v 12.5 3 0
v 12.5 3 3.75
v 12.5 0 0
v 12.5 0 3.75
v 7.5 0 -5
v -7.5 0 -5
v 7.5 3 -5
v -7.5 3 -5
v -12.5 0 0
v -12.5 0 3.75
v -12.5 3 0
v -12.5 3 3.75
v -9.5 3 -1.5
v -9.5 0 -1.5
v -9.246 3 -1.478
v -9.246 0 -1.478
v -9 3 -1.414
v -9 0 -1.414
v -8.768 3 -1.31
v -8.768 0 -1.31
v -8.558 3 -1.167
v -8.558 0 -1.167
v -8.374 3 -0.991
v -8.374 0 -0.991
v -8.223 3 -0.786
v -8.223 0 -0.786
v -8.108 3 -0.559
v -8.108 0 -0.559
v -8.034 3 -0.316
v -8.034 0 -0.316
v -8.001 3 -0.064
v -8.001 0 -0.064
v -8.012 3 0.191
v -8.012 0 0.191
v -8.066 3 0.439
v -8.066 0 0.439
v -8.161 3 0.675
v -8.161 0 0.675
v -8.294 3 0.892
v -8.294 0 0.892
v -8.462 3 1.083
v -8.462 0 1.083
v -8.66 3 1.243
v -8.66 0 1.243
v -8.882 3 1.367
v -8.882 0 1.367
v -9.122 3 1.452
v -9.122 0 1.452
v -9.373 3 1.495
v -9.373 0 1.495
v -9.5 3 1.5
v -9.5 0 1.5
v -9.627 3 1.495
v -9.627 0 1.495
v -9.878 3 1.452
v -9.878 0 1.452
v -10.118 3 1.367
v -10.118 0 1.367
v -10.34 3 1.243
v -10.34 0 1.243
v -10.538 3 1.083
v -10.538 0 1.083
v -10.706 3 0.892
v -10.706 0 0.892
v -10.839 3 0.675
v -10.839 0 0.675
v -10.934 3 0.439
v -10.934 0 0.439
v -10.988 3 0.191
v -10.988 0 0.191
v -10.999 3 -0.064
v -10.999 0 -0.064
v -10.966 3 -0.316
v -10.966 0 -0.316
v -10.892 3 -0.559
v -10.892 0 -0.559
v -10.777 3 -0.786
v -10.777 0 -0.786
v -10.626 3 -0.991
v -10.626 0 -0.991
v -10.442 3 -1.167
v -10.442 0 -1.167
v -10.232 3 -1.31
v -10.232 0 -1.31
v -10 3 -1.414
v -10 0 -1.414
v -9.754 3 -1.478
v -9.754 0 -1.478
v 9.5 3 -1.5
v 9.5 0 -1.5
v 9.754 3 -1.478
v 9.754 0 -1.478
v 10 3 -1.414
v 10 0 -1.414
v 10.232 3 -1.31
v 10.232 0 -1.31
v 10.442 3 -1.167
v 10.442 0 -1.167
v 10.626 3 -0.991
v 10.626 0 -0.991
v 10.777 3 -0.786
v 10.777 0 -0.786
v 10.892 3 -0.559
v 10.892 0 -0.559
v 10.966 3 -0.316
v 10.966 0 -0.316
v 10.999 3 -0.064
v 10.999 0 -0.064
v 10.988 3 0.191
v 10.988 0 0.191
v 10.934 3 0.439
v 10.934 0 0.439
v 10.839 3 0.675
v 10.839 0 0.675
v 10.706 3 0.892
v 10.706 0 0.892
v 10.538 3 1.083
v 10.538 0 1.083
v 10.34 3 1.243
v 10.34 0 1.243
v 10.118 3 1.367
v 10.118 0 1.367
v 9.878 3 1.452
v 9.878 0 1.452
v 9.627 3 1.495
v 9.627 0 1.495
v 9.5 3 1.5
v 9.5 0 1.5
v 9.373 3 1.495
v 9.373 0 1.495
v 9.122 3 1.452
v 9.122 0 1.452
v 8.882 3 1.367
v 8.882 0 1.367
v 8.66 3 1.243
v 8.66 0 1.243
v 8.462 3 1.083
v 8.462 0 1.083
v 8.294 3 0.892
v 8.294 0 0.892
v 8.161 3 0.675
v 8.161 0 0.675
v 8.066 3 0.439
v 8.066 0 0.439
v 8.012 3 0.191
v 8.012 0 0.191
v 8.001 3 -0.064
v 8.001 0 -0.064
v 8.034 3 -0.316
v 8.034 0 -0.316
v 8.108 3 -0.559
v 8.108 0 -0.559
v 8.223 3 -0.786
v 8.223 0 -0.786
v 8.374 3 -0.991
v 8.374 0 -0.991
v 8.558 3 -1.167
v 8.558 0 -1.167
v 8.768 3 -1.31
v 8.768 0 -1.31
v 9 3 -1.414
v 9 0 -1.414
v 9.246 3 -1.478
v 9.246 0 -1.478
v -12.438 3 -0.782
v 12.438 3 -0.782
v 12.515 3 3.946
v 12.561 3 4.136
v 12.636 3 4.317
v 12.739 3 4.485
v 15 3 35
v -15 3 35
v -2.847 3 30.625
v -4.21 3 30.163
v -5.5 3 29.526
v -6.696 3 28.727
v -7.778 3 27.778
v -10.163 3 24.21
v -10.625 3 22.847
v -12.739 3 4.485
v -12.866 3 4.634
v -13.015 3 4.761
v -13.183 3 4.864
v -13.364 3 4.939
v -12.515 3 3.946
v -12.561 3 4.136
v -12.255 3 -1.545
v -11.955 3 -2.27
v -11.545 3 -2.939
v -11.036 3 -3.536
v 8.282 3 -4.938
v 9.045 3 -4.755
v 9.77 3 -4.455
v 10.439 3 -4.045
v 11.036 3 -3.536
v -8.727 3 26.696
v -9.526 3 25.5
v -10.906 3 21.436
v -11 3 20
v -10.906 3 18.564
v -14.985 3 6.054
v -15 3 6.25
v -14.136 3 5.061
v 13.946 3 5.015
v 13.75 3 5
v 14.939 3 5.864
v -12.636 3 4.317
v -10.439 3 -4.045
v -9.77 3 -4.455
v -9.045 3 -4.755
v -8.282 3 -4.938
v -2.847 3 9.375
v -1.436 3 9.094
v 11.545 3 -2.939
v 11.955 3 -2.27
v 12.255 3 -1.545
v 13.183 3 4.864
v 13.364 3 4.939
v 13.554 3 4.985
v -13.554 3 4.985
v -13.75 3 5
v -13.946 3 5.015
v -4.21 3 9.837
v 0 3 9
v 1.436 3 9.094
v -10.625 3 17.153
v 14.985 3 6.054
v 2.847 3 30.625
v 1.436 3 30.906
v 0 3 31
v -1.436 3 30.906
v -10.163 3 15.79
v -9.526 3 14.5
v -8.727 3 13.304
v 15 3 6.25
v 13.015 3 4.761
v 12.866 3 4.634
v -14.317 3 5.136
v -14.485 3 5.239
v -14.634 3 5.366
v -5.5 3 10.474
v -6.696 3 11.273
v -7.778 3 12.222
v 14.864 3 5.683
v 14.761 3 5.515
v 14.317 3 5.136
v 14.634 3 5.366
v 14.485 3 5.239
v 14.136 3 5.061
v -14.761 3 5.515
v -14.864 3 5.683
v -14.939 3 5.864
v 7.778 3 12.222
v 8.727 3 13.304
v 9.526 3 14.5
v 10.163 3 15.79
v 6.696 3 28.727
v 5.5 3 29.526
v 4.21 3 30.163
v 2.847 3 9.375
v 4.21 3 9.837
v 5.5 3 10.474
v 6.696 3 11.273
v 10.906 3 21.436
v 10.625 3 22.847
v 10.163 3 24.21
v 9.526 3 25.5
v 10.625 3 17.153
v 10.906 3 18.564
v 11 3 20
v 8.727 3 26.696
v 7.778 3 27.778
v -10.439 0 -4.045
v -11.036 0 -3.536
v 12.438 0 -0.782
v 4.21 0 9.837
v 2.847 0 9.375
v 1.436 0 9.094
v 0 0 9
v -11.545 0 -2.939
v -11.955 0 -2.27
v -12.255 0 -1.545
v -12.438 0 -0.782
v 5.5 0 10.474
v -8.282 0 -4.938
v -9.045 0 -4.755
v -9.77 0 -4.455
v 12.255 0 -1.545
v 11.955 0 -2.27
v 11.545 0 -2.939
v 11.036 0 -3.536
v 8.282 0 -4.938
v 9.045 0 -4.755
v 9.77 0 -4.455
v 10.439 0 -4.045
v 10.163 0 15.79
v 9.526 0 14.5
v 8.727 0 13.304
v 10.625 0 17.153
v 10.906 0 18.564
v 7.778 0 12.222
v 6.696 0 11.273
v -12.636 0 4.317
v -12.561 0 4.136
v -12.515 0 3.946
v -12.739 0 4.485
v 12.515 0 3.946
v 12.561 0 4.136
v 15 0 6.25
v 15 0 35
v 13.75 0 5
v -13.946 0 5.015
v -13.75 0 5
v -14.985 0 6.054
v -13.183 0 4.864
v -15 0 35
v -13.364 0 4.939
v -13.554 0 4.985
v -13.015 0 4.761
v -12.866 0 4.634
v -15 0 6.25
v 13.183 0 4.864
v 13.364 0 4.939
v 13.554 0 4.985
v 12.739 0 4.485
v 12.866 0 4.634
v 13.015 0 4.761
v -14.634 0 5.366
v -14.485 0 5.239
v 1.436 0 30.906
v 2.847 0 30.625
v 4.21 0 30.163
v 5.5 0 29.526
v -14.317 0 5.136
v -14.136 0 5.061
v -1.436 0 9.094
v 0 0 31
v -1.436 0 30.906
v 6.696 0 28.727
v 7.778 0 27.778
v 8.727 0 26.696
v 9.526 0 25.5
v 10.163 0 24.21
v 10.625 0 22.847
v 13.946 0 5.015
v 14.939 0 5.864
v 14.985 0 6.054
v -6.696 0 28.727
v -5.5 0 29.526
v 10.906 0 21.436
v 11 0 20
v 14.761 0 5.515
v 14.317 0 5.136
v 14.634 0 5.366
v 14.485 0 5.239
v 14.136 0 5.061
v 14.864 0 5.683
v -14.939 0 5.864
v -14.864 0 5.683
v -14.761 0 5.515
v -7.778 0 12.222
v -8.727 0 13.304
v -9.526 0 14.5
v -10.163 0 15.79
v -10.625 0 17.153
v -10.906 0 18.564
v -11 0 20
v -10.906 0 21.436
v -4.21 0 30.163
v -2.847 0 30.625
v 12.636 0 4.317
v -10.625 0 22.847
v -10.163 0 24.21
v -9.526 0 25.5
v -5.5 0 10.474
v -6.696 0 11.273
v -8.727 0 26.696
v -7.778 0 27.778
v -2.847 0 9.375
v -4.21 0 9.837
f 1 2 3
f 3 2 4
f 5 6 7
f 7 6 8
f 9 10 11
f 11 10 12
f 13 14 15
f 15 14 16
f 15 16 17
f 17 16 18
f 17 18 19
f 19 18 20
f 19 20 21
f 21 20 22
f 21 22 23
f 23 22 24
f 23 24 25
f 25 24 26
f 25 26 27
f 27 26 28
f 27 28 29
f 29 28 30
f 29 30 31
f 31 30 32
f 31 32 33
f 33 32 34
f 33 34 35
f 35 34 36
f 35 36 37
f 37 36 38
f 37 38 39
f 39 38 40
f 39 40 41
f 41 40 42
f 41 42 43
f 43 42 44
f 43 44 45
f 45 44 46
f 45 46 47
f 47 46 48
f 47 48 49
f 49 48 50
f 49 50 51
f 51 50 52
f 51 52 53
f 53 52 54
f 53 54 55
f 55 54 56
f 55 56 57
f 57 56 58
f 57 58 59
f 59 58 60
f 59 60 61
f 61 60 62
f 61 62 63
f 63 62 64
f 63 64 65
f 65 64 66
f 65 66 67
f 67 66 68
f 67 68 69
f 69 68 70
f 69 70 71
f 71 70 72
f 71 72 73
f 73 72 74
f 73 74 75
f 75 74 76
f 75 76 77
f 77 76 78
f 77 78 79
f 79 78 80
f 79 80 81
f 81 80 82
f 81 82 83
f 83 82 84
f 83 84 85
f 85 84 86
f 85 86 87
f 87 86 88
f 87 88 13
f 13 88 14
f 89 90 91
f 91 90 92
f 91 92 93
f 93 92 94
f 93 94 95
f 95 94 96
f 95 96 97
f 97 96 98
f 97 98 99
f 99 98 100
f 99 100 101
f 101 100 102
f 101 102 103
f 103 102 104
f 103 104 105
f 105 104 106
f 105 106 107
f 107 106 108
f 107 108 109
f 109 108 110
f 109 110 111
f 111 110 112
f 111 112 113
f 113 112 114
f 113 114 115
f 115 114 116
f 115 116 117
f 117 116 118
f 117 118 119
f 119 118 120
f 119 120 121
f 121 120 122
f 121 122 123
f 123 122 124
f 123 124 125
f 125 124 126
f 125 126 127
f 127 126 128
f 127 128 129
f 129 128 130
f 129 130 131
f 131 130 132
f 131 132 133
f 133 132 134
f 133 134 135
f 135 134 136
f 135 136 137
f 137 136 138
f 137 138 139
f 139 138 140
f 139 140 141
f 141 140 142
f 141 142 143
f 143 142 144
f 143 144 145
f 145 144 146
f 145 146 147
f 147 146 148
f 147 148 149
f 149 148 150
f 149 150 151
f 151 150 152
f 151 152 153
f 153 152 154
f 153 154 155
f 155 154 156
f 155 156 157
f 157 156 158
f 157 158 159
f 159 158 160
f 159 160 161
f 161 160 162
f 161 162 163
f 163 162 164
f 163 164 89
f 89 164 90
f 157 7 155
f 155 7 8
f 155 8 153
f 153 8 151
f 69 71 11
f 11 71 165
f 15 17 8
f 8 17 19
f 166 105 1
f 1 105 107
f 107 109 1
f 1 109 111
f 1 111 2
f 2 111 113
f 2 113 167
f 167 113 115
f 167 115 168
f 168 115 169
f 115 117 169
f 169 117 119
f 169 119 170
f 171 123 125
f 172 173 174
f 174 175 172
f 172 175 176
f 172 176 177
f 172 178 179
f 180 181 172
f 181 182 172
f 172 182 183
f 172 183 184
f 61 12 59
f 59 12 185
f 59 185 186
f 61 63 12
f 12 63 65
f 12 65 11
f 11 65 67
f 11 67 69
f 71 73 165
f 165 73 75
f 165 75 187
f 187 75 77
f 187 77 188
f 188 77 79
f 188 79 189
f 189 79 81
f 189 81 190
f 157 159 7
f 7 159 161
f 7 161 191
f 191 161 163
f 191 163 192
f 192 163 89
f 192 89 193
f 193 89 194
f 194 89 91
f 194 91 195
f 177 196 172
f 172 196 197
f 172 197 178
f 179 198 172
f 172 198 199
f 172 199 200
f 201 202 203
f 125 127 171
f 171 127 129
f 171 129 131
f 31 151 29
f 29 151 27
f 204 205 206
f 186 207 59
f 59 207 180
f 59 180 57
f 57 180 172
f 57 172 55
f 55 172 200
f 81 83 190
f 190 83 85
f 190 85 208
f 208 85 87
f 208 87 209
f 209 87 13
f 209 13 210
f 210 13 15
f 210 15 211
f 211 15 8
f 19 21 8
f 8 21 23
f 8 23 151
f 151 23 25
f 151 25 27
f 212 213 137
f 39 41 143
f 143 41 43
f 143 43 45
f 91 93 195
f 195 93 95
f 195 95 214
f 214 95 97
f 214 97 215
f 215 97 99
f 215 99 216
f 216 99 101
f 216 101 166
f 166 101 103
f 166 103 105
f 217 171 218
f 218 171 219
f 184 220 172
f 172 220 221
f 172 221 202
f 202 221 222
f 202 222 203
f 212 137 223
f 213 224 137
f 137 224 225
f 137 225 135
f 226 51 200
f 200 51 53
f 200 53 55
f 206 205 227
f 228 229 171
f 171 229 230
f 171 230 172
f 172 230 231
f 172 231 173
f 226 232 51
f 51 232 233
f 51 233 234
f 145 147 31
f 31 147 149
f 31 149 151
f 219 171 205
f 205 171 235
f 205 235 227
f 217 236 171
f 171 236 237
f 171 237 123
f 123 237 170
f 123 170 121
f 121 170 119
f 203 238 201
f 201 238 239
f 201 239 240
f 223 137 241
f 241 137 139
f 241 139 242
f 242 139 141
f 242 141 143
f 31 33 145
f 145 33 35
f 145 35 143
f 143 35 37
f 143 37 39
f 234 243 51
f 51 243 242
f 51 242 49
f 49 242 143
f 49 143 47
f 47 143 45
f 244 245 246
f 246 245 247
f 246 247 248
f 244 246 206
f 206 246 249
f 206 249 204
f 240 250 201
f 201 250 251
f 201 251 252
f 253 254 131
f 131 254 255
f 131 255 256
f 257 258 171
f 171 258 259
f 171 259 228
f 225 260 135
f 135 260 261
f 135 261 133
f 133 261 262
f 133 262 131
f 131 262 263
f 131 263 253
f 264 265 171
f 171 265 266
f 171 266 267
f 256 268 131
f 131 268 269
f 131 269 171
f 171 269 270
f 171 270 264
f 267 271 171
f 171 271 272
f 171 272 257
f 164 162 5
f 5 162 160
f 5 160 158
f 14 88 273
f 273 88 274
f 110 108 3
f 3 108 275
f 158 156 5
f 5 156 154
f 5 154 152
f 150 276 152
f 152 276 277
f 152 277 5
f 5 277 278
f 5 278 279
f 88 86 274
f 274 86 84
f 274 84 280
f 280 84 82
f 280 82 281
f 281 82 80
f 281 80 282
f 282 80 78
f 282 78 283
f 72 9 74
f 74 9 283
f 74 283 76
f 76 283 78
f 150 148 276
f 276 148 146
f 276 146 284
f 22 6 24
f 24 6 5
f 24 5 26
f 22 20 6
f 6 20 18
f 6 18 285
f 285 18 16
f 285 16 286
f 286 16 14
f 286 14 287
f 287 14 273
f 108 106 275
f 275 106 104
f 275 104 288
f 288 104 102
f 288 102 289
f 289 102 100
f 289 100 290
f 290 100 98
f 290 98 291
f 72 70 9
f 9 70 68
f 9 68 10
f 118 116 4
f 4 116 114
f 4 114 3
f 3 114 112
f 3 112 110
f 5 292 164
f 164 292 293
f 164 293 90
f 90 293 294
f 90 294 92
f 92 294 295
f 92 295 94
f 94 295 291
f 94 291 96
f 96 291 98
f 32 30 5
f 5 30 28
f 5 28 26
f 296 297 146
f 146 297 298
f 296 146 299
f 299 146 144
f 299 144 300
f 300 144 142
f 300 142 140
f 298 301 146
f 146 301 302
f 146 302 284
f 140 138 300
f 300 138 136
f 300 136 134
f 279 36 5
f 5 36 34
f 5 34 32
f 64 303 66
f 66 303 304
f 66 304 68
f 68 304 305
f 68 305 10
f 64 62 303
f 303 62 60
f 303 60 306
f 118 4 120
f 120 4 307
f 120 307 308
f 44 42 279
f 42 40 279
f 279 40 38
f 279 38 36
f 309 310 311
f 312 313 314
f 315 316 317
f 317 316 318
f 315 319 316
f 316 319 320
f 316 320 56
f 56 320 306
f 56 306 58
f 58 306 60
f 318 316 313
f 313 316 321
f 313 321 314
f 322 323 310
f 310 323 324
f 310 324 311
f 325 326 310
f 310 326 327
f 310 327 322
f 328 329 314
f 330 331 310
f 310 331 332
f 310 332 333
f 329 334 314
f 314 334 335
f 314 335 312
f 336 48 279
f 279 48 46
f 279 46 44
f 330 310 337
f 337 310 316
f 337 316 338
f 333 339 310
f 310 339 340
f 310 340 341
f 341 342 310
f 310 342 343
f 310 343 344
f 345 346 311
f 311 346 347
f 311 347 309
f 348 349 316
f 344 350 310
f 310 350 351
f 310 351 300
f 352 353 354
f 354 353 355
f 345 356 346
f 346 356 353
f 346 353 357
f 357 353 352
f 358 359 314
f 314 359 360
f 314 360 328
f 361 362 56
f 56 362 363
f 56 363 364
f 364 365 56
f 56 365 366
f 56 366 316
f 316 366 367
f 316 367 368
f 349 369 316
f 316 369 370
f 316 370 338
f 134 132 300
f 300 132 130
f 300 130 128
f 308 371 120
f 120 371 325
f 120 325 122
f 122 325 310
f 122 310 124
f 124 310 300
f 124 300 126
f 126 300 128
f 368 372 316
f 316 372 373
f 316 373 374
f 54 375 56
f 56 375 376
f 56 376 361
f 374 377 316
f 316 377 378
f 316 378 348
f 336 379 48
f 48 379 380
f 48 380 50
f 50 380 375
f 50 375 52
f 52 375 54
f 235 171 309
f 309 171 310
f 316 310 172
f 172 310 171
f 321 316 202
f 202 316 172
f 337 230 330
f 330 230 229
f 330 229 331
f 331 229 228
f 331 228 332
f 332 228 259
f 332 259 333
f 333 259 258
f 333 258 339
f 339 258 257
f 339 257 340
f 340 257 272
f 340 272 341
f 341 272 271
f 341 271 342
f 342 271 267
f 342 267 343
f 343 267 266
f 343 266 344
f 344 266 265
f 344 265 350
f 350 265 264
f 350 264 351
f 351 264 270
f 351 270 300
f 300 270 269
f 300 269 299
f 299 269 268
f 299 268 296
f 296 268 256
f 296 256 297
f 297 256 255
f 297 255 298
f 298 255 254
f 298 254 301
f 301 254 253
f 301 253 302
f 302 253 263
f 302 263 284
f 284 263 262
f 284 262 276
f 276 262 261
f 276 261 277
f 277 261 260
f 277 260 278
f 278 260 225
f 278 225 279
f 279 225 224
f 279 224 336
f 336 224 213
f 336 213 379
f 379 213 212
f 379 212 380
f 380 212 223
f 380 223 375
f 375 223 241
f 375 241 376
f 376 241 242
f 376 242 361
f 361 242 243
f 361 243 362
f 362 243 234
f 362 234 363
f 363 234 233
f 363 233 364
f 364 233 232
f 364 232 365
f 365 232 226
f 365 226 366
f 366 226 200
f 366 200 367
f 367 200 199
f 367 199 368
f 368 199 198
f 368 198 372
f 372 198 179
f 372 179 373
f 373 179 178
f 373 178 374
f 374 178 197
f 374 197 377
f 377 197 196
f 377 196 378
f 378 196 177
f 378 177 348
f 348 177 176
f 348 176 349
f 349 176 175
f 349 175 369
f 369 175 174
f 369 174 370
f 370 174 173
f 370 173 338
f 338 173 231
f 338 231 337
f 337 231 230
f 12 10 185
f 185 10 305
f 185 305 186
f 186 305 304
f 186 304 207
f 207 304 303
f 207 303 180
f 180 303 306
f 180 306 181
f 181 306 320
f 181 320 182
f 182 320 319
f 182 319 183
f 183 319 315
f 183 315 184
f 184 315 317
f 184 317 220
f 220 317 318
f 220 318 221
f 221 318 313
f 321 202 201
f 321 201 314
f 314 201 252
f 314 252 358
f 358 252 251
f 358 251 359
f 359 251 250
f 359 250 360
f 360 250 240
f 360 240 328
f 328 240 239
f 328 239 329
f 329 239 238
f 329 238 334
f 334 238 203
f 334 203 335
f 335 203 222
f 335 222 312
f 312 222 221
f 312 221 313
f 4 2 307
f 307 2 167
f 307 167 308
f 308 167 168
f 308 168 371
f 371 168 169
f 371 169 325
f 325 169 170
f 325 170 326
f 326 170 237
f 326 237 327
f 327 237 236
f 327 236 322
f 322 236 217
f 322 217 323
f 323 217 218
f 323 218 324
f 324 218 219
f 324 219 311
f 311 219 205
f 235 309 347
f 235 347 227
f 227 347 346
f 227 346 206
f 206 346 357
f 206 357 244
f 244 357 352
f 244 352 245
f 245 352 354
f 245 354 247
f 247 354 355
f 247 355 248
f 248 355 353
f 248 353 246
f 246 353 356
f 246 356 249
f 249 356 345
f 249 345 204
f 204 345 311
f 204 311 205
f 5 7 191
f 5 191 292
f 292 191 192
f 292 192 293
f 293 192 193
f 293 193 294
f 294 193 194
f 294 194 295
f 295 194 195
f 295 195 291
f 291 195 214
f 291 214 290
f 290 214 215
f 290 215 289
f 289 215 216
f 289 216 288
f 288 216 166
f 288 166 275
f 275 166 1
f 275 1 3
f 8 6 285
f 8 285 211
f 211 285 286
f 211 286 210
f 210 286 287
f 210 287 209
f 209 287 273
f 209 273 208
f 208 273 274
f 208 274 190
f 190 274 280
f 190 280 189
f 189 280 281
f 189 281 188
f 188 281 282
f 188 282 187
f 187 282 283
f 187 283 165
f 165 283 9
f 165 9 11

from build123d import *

# Parameters (mm, degrees)
SKETCH_1_W       = 25
SKETCH_1_H       = 10
SKETCH_1_R       = 1.5
EXTRUDE_1_DEPTH  = 3
SKETCH_3_W       = 30
SKETCH_3_H       = 30
SKETCH_3_R       = 11
EXTRUDE_2_DEPTH  = 3
FILLET_START     = -1
FILLET_1_DEPTH   = 5
FILLET_1_2_DEPTH = 3
FILLET_2_R       = 5


with BuildPart() as part:
    # 草图1 → 凸台-拉伸1 (new body)
    with BuildSketch(Plane(origin=(0, 0, 0), x_dir=(1, 0, 0), z_dir=(0, 1, 0))):
        Rectangle(SKETCH_1_W, SKETCH_1_H)
        with Locations(Location((-9.5, 0, 0), (0, 0, 270))):
            Circle(SKETCH_1_R, mode=Mode.SUBTRACT)
        with Locations(Location((9.5, 0, 0), (0, 0, 270))):
            Circle(SKETCH_1_R, mode=Mode.SUBTRACT)
    extrude(amount=EXTRUDE_1_DEPTH)

    # 草图3 → 凸台-拉伸2 (add)
    with BuildSketch(Plane(origin=(0, 3, 0), x_dir=(1, 0, 0), z_dir=(0, 1, 0))):
        with Locations((0, -20)):
            Rectangle(SKETCH_3_W, SKETCH_3_H)
        with Locations(Location((0, -20, 0), (0, 0, 270))):
            Circle(SKETCH_3_R, mode=Mode.SUBTRACT)
    extrude(amount=-EXTRUDE_2_DEPTH)

    # 圆角1: read off the stored shape, not the designer's step
    # 圆角1 outline → 圆角1 (cut)
    with BuildSketch(Plane(origin=(0, 0, 0), x_dir=(1, 0, 0), z_dir=(0, 1, 0)).offset(FILLET_START)):
        with BuildLine():
            ThreePointArc((-15, -6.25), (-14.633883476, -5.366116524), (-13.75, -5))
            Line((-13.75, -5), (-15, -5))
            Line((-15, -5), (-15, -6.25))
        make_face()
        with BuildLine():
            Line((15, -5), (13.75, -5))
            ThreePointArc((13.75, -5), (14.633883476, -5.366116524), (15, -6.25))
            Line((15, -6.25), (15, -5))
        make_face()
    extrude(amount=FILLET_1_DEPTH, mode=Mode.SUBTRACT)

    # Fillet 1 2 outline → Fillet 1 2 (add)
    with BuildSketch(Plane(origin=(0, 0, 0), x_dir=(1, 0, 0), z_dir=(0, 1, 0))):
        with BuildLine():
            Line((-12.5, -5), (-12.5, -3.75))
            ThreePointArc((-12.5, -3.75), (-12.866116524, -4.633883476), (-13.75, -5))
            Line((-13.75, -5), (-12.5, -5))
        make_face()
        with BuildLine():
            ThreePointArc((13.75, -5), (12.866116524, -4.633883476), (12.5, -3.75))
            Line((12.5, -3.75), (12.5, -5))
            Line((12.5, -5), (13.75, -5))
        make_face()
    extrude(amount=FILLET_1_2_DEPTH)

    # 圆角2
    fillet_2_edges = [part.edges().sort_by_distance(p)[0] for p in [
        (-12.5, 1.5, -5),
        (12.5, 1.5, -5),
    ]]
    fillet(fillet_2_edges, radius=FILLET_2_R)


solid = part.part
